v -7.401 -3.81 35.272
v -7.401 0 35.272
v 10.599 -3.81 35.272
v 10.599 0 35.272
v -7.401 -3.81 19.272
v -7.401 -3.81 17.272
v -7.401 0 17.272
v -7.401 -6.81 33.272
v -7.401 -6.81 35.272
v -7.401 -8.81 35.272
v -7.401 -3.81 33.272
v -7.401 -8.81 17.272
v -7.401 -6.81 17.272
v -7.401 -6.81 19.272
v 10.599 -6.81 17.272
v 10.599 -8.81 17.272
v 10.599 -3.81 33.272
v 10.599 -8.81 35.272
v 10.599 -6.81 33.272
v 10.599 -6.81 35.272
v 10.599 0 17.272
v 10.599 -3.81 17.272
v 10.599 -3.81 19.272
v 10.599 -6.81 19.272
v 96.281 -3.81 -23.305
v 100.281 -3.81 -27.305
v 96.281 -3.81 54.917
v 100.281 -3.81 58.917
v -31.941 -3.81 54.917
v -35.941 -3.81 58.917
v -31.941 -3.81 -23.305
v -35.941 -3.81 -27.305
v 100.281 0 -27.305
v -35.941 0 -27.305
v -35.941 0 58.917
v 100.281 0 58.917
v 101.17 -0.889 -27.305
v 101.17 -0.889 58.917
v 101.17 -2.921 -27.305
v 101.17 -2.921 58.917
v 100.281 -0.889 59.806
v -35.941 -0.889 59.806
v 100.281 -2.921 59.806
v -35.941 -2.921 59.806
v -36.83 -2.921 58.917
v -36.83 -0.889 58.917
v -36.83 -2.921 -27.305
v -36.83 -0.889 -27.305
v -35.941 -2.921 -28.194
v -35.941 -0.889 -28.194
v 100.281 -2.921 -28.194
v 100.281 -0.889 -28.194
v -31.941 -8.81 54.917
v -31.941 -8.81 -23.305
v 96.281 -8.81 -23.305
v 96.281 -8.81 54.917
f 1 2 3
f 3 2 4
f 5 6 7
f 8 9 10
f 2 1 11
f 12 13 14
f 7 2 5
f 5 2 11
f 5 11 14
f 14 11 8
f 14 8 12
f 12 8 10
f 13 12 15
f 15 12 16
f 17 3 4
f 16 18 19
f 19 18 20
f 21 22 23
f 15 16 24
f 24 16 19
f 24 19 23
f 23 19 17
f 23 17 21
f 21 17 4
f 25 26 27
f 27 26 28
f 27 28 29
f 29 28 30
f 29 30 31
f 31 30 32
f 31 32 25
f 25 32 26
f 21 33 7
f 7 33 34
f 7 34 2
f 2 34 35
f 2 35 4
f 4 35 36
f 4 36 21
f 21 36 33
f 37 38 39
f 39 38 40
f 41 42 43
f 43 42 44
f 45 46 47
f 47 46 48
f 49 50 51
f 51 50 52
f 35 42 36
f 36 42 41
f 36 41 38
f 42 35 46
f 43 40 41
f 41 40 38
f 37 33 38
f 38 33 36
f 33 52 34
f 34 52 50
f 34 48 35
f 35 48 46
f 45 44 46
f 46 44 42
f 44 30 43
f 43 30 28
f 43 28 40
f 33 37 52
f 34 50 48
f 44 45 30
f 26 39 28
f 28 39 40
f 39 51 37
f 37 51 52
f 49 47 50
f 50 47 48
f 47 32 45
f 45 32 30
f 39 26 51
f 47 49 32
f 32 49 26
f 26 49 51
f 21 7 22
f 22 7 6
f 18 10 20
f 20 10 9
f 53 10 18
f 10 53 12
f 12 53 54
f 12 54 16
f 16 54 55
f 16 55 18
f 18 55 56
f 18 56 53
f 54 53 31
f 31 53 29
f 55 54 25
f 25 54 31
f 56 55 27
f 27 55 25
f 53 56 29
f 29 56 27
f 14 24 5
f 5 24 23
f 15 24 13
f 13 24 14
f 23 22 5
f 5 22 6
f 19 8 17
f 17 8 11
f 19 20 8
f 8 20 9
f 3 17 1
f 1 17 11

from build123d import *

# Parameters (mm, degrees)
SKETCH1_W           = 138
SKETCH1_H           = 88
BOSS_EXTRUDE1_DEPTH = 3.81
CHAMFER1_SIZE       = 0.889
SKETCH2_W           = 128.222
SKETCH2_H           = 78.222
BOSS_EXTRUDE2_DEPTH = 5
SKETCH3_W           = 18
SKETCH3_H           = 18
CUT_EXTRUDE1_DEPTH  = 10
SKETCH4_W           = 18
SKETCH4_H           = 2
BOSS_EXTRUDE3_DEPTH = 3


with BuildPart() as part:
    # Sketch1 → Boss-Extrude1 (new body)
    with BuildSketch(Plane(origin=(0, 0, 0), x_dir=(1, 0, 0), z_dir=(0, 1, 0))):
        with Locations((32.17, -15.806)):
            Rectangle(SKETCH1_W, SKETCH1_H)
    extrude(amount=-BOSS_EXTRUDE1_DEPTH)

    # Chamfer1
    chamfer1_edges = [part.edges().sort_by_distance(p)[0] for p in [
        (-36.83, -3.81, 15.806),
        (32.17, -3.81, 59.806),
        (101.17, -3.81, 15.806),
        (32.17, 0, 59.806),
        (-36.83, 0, 15.806),
        (32.17, 0, -28.194),
        (101.17, 0, 15.806),
        (32.17, -3.81, -28.194),
        (101.17, -1.905, 59.806),
        (-36.83, -1.905, 59.806),
        (-36.83, -1.905, -28.194),
        (101.17, -1.905, -28.194),
    ]]
    chamfer(chamfer1_edges, length=CHAMFER1_SIZE)


with BuildPart() as body_2:
    # Sketch2 → Boss-Extrude2 (new body)
    with BuildSketch(Plane(origin=(0, -3.81, 0), x_dir=(1, 0, 0), z_dir=(0, 1, 0))):
        with Locations((32.17, -15.806)):
            Rectangle(SKETCH2_W, SKETCH2_H)
    extrude(amount=-BOSS_EXTRUDE2_DEPTH)


with BuildPart() as cut_extrude1_tool:
    # Sketch3 → Cut-Extrude1 (new body)
    with BuildSketch(Plane(origin=(0, 0, 0), x_dir=(-1, 0, 0), z_dir=(0, -1, 0))):
        with Locations((-1.599154352, -26.272344334)):
            Rectangle(SKETCH3_W, SKETCH3_H)
    extrude(amount=CUT_EXTRUDE1_DEPTH)


with BuildPart() as part_1:
    add(part.part)

    # Cut-Extrude1: cut by cut_extrude1_tool
    add(cut_extrude1_tool.part, mode=Mode.SUBTRACT)



with BuildPart() as body_2_1:
    add(body_2.part)

    # Cut-Extrude1: cut by cut_extrude1_tool
    add(cut_extrude1_tool.part, mode=Mode.SUBTRACT)


with BuildPart() as part_2:
    add(part_1.part)

    add(body_2_1.part)  # Boss-Extrude3 merges body 2
    # Sketch4 → Boss-Extrude3 (add)
    with BuildSketch(Plane(origin=(0, -3.81, 0), x_dir=(-1, 0, 0), z_dir=(0, -1, 0))):
        with Locations((-1.599154352, -18.272344334)):
            Rectangle(SKETCH4_W, SKETCH4_H)
        with Locations((-1.599154352, -34.272344334)):
            Rectangle(SKETCH4_W, SKETCH4_H)
    extrude(amount=BOSS_EXTRUDE3_DEPTH)


solid = part_2.part
